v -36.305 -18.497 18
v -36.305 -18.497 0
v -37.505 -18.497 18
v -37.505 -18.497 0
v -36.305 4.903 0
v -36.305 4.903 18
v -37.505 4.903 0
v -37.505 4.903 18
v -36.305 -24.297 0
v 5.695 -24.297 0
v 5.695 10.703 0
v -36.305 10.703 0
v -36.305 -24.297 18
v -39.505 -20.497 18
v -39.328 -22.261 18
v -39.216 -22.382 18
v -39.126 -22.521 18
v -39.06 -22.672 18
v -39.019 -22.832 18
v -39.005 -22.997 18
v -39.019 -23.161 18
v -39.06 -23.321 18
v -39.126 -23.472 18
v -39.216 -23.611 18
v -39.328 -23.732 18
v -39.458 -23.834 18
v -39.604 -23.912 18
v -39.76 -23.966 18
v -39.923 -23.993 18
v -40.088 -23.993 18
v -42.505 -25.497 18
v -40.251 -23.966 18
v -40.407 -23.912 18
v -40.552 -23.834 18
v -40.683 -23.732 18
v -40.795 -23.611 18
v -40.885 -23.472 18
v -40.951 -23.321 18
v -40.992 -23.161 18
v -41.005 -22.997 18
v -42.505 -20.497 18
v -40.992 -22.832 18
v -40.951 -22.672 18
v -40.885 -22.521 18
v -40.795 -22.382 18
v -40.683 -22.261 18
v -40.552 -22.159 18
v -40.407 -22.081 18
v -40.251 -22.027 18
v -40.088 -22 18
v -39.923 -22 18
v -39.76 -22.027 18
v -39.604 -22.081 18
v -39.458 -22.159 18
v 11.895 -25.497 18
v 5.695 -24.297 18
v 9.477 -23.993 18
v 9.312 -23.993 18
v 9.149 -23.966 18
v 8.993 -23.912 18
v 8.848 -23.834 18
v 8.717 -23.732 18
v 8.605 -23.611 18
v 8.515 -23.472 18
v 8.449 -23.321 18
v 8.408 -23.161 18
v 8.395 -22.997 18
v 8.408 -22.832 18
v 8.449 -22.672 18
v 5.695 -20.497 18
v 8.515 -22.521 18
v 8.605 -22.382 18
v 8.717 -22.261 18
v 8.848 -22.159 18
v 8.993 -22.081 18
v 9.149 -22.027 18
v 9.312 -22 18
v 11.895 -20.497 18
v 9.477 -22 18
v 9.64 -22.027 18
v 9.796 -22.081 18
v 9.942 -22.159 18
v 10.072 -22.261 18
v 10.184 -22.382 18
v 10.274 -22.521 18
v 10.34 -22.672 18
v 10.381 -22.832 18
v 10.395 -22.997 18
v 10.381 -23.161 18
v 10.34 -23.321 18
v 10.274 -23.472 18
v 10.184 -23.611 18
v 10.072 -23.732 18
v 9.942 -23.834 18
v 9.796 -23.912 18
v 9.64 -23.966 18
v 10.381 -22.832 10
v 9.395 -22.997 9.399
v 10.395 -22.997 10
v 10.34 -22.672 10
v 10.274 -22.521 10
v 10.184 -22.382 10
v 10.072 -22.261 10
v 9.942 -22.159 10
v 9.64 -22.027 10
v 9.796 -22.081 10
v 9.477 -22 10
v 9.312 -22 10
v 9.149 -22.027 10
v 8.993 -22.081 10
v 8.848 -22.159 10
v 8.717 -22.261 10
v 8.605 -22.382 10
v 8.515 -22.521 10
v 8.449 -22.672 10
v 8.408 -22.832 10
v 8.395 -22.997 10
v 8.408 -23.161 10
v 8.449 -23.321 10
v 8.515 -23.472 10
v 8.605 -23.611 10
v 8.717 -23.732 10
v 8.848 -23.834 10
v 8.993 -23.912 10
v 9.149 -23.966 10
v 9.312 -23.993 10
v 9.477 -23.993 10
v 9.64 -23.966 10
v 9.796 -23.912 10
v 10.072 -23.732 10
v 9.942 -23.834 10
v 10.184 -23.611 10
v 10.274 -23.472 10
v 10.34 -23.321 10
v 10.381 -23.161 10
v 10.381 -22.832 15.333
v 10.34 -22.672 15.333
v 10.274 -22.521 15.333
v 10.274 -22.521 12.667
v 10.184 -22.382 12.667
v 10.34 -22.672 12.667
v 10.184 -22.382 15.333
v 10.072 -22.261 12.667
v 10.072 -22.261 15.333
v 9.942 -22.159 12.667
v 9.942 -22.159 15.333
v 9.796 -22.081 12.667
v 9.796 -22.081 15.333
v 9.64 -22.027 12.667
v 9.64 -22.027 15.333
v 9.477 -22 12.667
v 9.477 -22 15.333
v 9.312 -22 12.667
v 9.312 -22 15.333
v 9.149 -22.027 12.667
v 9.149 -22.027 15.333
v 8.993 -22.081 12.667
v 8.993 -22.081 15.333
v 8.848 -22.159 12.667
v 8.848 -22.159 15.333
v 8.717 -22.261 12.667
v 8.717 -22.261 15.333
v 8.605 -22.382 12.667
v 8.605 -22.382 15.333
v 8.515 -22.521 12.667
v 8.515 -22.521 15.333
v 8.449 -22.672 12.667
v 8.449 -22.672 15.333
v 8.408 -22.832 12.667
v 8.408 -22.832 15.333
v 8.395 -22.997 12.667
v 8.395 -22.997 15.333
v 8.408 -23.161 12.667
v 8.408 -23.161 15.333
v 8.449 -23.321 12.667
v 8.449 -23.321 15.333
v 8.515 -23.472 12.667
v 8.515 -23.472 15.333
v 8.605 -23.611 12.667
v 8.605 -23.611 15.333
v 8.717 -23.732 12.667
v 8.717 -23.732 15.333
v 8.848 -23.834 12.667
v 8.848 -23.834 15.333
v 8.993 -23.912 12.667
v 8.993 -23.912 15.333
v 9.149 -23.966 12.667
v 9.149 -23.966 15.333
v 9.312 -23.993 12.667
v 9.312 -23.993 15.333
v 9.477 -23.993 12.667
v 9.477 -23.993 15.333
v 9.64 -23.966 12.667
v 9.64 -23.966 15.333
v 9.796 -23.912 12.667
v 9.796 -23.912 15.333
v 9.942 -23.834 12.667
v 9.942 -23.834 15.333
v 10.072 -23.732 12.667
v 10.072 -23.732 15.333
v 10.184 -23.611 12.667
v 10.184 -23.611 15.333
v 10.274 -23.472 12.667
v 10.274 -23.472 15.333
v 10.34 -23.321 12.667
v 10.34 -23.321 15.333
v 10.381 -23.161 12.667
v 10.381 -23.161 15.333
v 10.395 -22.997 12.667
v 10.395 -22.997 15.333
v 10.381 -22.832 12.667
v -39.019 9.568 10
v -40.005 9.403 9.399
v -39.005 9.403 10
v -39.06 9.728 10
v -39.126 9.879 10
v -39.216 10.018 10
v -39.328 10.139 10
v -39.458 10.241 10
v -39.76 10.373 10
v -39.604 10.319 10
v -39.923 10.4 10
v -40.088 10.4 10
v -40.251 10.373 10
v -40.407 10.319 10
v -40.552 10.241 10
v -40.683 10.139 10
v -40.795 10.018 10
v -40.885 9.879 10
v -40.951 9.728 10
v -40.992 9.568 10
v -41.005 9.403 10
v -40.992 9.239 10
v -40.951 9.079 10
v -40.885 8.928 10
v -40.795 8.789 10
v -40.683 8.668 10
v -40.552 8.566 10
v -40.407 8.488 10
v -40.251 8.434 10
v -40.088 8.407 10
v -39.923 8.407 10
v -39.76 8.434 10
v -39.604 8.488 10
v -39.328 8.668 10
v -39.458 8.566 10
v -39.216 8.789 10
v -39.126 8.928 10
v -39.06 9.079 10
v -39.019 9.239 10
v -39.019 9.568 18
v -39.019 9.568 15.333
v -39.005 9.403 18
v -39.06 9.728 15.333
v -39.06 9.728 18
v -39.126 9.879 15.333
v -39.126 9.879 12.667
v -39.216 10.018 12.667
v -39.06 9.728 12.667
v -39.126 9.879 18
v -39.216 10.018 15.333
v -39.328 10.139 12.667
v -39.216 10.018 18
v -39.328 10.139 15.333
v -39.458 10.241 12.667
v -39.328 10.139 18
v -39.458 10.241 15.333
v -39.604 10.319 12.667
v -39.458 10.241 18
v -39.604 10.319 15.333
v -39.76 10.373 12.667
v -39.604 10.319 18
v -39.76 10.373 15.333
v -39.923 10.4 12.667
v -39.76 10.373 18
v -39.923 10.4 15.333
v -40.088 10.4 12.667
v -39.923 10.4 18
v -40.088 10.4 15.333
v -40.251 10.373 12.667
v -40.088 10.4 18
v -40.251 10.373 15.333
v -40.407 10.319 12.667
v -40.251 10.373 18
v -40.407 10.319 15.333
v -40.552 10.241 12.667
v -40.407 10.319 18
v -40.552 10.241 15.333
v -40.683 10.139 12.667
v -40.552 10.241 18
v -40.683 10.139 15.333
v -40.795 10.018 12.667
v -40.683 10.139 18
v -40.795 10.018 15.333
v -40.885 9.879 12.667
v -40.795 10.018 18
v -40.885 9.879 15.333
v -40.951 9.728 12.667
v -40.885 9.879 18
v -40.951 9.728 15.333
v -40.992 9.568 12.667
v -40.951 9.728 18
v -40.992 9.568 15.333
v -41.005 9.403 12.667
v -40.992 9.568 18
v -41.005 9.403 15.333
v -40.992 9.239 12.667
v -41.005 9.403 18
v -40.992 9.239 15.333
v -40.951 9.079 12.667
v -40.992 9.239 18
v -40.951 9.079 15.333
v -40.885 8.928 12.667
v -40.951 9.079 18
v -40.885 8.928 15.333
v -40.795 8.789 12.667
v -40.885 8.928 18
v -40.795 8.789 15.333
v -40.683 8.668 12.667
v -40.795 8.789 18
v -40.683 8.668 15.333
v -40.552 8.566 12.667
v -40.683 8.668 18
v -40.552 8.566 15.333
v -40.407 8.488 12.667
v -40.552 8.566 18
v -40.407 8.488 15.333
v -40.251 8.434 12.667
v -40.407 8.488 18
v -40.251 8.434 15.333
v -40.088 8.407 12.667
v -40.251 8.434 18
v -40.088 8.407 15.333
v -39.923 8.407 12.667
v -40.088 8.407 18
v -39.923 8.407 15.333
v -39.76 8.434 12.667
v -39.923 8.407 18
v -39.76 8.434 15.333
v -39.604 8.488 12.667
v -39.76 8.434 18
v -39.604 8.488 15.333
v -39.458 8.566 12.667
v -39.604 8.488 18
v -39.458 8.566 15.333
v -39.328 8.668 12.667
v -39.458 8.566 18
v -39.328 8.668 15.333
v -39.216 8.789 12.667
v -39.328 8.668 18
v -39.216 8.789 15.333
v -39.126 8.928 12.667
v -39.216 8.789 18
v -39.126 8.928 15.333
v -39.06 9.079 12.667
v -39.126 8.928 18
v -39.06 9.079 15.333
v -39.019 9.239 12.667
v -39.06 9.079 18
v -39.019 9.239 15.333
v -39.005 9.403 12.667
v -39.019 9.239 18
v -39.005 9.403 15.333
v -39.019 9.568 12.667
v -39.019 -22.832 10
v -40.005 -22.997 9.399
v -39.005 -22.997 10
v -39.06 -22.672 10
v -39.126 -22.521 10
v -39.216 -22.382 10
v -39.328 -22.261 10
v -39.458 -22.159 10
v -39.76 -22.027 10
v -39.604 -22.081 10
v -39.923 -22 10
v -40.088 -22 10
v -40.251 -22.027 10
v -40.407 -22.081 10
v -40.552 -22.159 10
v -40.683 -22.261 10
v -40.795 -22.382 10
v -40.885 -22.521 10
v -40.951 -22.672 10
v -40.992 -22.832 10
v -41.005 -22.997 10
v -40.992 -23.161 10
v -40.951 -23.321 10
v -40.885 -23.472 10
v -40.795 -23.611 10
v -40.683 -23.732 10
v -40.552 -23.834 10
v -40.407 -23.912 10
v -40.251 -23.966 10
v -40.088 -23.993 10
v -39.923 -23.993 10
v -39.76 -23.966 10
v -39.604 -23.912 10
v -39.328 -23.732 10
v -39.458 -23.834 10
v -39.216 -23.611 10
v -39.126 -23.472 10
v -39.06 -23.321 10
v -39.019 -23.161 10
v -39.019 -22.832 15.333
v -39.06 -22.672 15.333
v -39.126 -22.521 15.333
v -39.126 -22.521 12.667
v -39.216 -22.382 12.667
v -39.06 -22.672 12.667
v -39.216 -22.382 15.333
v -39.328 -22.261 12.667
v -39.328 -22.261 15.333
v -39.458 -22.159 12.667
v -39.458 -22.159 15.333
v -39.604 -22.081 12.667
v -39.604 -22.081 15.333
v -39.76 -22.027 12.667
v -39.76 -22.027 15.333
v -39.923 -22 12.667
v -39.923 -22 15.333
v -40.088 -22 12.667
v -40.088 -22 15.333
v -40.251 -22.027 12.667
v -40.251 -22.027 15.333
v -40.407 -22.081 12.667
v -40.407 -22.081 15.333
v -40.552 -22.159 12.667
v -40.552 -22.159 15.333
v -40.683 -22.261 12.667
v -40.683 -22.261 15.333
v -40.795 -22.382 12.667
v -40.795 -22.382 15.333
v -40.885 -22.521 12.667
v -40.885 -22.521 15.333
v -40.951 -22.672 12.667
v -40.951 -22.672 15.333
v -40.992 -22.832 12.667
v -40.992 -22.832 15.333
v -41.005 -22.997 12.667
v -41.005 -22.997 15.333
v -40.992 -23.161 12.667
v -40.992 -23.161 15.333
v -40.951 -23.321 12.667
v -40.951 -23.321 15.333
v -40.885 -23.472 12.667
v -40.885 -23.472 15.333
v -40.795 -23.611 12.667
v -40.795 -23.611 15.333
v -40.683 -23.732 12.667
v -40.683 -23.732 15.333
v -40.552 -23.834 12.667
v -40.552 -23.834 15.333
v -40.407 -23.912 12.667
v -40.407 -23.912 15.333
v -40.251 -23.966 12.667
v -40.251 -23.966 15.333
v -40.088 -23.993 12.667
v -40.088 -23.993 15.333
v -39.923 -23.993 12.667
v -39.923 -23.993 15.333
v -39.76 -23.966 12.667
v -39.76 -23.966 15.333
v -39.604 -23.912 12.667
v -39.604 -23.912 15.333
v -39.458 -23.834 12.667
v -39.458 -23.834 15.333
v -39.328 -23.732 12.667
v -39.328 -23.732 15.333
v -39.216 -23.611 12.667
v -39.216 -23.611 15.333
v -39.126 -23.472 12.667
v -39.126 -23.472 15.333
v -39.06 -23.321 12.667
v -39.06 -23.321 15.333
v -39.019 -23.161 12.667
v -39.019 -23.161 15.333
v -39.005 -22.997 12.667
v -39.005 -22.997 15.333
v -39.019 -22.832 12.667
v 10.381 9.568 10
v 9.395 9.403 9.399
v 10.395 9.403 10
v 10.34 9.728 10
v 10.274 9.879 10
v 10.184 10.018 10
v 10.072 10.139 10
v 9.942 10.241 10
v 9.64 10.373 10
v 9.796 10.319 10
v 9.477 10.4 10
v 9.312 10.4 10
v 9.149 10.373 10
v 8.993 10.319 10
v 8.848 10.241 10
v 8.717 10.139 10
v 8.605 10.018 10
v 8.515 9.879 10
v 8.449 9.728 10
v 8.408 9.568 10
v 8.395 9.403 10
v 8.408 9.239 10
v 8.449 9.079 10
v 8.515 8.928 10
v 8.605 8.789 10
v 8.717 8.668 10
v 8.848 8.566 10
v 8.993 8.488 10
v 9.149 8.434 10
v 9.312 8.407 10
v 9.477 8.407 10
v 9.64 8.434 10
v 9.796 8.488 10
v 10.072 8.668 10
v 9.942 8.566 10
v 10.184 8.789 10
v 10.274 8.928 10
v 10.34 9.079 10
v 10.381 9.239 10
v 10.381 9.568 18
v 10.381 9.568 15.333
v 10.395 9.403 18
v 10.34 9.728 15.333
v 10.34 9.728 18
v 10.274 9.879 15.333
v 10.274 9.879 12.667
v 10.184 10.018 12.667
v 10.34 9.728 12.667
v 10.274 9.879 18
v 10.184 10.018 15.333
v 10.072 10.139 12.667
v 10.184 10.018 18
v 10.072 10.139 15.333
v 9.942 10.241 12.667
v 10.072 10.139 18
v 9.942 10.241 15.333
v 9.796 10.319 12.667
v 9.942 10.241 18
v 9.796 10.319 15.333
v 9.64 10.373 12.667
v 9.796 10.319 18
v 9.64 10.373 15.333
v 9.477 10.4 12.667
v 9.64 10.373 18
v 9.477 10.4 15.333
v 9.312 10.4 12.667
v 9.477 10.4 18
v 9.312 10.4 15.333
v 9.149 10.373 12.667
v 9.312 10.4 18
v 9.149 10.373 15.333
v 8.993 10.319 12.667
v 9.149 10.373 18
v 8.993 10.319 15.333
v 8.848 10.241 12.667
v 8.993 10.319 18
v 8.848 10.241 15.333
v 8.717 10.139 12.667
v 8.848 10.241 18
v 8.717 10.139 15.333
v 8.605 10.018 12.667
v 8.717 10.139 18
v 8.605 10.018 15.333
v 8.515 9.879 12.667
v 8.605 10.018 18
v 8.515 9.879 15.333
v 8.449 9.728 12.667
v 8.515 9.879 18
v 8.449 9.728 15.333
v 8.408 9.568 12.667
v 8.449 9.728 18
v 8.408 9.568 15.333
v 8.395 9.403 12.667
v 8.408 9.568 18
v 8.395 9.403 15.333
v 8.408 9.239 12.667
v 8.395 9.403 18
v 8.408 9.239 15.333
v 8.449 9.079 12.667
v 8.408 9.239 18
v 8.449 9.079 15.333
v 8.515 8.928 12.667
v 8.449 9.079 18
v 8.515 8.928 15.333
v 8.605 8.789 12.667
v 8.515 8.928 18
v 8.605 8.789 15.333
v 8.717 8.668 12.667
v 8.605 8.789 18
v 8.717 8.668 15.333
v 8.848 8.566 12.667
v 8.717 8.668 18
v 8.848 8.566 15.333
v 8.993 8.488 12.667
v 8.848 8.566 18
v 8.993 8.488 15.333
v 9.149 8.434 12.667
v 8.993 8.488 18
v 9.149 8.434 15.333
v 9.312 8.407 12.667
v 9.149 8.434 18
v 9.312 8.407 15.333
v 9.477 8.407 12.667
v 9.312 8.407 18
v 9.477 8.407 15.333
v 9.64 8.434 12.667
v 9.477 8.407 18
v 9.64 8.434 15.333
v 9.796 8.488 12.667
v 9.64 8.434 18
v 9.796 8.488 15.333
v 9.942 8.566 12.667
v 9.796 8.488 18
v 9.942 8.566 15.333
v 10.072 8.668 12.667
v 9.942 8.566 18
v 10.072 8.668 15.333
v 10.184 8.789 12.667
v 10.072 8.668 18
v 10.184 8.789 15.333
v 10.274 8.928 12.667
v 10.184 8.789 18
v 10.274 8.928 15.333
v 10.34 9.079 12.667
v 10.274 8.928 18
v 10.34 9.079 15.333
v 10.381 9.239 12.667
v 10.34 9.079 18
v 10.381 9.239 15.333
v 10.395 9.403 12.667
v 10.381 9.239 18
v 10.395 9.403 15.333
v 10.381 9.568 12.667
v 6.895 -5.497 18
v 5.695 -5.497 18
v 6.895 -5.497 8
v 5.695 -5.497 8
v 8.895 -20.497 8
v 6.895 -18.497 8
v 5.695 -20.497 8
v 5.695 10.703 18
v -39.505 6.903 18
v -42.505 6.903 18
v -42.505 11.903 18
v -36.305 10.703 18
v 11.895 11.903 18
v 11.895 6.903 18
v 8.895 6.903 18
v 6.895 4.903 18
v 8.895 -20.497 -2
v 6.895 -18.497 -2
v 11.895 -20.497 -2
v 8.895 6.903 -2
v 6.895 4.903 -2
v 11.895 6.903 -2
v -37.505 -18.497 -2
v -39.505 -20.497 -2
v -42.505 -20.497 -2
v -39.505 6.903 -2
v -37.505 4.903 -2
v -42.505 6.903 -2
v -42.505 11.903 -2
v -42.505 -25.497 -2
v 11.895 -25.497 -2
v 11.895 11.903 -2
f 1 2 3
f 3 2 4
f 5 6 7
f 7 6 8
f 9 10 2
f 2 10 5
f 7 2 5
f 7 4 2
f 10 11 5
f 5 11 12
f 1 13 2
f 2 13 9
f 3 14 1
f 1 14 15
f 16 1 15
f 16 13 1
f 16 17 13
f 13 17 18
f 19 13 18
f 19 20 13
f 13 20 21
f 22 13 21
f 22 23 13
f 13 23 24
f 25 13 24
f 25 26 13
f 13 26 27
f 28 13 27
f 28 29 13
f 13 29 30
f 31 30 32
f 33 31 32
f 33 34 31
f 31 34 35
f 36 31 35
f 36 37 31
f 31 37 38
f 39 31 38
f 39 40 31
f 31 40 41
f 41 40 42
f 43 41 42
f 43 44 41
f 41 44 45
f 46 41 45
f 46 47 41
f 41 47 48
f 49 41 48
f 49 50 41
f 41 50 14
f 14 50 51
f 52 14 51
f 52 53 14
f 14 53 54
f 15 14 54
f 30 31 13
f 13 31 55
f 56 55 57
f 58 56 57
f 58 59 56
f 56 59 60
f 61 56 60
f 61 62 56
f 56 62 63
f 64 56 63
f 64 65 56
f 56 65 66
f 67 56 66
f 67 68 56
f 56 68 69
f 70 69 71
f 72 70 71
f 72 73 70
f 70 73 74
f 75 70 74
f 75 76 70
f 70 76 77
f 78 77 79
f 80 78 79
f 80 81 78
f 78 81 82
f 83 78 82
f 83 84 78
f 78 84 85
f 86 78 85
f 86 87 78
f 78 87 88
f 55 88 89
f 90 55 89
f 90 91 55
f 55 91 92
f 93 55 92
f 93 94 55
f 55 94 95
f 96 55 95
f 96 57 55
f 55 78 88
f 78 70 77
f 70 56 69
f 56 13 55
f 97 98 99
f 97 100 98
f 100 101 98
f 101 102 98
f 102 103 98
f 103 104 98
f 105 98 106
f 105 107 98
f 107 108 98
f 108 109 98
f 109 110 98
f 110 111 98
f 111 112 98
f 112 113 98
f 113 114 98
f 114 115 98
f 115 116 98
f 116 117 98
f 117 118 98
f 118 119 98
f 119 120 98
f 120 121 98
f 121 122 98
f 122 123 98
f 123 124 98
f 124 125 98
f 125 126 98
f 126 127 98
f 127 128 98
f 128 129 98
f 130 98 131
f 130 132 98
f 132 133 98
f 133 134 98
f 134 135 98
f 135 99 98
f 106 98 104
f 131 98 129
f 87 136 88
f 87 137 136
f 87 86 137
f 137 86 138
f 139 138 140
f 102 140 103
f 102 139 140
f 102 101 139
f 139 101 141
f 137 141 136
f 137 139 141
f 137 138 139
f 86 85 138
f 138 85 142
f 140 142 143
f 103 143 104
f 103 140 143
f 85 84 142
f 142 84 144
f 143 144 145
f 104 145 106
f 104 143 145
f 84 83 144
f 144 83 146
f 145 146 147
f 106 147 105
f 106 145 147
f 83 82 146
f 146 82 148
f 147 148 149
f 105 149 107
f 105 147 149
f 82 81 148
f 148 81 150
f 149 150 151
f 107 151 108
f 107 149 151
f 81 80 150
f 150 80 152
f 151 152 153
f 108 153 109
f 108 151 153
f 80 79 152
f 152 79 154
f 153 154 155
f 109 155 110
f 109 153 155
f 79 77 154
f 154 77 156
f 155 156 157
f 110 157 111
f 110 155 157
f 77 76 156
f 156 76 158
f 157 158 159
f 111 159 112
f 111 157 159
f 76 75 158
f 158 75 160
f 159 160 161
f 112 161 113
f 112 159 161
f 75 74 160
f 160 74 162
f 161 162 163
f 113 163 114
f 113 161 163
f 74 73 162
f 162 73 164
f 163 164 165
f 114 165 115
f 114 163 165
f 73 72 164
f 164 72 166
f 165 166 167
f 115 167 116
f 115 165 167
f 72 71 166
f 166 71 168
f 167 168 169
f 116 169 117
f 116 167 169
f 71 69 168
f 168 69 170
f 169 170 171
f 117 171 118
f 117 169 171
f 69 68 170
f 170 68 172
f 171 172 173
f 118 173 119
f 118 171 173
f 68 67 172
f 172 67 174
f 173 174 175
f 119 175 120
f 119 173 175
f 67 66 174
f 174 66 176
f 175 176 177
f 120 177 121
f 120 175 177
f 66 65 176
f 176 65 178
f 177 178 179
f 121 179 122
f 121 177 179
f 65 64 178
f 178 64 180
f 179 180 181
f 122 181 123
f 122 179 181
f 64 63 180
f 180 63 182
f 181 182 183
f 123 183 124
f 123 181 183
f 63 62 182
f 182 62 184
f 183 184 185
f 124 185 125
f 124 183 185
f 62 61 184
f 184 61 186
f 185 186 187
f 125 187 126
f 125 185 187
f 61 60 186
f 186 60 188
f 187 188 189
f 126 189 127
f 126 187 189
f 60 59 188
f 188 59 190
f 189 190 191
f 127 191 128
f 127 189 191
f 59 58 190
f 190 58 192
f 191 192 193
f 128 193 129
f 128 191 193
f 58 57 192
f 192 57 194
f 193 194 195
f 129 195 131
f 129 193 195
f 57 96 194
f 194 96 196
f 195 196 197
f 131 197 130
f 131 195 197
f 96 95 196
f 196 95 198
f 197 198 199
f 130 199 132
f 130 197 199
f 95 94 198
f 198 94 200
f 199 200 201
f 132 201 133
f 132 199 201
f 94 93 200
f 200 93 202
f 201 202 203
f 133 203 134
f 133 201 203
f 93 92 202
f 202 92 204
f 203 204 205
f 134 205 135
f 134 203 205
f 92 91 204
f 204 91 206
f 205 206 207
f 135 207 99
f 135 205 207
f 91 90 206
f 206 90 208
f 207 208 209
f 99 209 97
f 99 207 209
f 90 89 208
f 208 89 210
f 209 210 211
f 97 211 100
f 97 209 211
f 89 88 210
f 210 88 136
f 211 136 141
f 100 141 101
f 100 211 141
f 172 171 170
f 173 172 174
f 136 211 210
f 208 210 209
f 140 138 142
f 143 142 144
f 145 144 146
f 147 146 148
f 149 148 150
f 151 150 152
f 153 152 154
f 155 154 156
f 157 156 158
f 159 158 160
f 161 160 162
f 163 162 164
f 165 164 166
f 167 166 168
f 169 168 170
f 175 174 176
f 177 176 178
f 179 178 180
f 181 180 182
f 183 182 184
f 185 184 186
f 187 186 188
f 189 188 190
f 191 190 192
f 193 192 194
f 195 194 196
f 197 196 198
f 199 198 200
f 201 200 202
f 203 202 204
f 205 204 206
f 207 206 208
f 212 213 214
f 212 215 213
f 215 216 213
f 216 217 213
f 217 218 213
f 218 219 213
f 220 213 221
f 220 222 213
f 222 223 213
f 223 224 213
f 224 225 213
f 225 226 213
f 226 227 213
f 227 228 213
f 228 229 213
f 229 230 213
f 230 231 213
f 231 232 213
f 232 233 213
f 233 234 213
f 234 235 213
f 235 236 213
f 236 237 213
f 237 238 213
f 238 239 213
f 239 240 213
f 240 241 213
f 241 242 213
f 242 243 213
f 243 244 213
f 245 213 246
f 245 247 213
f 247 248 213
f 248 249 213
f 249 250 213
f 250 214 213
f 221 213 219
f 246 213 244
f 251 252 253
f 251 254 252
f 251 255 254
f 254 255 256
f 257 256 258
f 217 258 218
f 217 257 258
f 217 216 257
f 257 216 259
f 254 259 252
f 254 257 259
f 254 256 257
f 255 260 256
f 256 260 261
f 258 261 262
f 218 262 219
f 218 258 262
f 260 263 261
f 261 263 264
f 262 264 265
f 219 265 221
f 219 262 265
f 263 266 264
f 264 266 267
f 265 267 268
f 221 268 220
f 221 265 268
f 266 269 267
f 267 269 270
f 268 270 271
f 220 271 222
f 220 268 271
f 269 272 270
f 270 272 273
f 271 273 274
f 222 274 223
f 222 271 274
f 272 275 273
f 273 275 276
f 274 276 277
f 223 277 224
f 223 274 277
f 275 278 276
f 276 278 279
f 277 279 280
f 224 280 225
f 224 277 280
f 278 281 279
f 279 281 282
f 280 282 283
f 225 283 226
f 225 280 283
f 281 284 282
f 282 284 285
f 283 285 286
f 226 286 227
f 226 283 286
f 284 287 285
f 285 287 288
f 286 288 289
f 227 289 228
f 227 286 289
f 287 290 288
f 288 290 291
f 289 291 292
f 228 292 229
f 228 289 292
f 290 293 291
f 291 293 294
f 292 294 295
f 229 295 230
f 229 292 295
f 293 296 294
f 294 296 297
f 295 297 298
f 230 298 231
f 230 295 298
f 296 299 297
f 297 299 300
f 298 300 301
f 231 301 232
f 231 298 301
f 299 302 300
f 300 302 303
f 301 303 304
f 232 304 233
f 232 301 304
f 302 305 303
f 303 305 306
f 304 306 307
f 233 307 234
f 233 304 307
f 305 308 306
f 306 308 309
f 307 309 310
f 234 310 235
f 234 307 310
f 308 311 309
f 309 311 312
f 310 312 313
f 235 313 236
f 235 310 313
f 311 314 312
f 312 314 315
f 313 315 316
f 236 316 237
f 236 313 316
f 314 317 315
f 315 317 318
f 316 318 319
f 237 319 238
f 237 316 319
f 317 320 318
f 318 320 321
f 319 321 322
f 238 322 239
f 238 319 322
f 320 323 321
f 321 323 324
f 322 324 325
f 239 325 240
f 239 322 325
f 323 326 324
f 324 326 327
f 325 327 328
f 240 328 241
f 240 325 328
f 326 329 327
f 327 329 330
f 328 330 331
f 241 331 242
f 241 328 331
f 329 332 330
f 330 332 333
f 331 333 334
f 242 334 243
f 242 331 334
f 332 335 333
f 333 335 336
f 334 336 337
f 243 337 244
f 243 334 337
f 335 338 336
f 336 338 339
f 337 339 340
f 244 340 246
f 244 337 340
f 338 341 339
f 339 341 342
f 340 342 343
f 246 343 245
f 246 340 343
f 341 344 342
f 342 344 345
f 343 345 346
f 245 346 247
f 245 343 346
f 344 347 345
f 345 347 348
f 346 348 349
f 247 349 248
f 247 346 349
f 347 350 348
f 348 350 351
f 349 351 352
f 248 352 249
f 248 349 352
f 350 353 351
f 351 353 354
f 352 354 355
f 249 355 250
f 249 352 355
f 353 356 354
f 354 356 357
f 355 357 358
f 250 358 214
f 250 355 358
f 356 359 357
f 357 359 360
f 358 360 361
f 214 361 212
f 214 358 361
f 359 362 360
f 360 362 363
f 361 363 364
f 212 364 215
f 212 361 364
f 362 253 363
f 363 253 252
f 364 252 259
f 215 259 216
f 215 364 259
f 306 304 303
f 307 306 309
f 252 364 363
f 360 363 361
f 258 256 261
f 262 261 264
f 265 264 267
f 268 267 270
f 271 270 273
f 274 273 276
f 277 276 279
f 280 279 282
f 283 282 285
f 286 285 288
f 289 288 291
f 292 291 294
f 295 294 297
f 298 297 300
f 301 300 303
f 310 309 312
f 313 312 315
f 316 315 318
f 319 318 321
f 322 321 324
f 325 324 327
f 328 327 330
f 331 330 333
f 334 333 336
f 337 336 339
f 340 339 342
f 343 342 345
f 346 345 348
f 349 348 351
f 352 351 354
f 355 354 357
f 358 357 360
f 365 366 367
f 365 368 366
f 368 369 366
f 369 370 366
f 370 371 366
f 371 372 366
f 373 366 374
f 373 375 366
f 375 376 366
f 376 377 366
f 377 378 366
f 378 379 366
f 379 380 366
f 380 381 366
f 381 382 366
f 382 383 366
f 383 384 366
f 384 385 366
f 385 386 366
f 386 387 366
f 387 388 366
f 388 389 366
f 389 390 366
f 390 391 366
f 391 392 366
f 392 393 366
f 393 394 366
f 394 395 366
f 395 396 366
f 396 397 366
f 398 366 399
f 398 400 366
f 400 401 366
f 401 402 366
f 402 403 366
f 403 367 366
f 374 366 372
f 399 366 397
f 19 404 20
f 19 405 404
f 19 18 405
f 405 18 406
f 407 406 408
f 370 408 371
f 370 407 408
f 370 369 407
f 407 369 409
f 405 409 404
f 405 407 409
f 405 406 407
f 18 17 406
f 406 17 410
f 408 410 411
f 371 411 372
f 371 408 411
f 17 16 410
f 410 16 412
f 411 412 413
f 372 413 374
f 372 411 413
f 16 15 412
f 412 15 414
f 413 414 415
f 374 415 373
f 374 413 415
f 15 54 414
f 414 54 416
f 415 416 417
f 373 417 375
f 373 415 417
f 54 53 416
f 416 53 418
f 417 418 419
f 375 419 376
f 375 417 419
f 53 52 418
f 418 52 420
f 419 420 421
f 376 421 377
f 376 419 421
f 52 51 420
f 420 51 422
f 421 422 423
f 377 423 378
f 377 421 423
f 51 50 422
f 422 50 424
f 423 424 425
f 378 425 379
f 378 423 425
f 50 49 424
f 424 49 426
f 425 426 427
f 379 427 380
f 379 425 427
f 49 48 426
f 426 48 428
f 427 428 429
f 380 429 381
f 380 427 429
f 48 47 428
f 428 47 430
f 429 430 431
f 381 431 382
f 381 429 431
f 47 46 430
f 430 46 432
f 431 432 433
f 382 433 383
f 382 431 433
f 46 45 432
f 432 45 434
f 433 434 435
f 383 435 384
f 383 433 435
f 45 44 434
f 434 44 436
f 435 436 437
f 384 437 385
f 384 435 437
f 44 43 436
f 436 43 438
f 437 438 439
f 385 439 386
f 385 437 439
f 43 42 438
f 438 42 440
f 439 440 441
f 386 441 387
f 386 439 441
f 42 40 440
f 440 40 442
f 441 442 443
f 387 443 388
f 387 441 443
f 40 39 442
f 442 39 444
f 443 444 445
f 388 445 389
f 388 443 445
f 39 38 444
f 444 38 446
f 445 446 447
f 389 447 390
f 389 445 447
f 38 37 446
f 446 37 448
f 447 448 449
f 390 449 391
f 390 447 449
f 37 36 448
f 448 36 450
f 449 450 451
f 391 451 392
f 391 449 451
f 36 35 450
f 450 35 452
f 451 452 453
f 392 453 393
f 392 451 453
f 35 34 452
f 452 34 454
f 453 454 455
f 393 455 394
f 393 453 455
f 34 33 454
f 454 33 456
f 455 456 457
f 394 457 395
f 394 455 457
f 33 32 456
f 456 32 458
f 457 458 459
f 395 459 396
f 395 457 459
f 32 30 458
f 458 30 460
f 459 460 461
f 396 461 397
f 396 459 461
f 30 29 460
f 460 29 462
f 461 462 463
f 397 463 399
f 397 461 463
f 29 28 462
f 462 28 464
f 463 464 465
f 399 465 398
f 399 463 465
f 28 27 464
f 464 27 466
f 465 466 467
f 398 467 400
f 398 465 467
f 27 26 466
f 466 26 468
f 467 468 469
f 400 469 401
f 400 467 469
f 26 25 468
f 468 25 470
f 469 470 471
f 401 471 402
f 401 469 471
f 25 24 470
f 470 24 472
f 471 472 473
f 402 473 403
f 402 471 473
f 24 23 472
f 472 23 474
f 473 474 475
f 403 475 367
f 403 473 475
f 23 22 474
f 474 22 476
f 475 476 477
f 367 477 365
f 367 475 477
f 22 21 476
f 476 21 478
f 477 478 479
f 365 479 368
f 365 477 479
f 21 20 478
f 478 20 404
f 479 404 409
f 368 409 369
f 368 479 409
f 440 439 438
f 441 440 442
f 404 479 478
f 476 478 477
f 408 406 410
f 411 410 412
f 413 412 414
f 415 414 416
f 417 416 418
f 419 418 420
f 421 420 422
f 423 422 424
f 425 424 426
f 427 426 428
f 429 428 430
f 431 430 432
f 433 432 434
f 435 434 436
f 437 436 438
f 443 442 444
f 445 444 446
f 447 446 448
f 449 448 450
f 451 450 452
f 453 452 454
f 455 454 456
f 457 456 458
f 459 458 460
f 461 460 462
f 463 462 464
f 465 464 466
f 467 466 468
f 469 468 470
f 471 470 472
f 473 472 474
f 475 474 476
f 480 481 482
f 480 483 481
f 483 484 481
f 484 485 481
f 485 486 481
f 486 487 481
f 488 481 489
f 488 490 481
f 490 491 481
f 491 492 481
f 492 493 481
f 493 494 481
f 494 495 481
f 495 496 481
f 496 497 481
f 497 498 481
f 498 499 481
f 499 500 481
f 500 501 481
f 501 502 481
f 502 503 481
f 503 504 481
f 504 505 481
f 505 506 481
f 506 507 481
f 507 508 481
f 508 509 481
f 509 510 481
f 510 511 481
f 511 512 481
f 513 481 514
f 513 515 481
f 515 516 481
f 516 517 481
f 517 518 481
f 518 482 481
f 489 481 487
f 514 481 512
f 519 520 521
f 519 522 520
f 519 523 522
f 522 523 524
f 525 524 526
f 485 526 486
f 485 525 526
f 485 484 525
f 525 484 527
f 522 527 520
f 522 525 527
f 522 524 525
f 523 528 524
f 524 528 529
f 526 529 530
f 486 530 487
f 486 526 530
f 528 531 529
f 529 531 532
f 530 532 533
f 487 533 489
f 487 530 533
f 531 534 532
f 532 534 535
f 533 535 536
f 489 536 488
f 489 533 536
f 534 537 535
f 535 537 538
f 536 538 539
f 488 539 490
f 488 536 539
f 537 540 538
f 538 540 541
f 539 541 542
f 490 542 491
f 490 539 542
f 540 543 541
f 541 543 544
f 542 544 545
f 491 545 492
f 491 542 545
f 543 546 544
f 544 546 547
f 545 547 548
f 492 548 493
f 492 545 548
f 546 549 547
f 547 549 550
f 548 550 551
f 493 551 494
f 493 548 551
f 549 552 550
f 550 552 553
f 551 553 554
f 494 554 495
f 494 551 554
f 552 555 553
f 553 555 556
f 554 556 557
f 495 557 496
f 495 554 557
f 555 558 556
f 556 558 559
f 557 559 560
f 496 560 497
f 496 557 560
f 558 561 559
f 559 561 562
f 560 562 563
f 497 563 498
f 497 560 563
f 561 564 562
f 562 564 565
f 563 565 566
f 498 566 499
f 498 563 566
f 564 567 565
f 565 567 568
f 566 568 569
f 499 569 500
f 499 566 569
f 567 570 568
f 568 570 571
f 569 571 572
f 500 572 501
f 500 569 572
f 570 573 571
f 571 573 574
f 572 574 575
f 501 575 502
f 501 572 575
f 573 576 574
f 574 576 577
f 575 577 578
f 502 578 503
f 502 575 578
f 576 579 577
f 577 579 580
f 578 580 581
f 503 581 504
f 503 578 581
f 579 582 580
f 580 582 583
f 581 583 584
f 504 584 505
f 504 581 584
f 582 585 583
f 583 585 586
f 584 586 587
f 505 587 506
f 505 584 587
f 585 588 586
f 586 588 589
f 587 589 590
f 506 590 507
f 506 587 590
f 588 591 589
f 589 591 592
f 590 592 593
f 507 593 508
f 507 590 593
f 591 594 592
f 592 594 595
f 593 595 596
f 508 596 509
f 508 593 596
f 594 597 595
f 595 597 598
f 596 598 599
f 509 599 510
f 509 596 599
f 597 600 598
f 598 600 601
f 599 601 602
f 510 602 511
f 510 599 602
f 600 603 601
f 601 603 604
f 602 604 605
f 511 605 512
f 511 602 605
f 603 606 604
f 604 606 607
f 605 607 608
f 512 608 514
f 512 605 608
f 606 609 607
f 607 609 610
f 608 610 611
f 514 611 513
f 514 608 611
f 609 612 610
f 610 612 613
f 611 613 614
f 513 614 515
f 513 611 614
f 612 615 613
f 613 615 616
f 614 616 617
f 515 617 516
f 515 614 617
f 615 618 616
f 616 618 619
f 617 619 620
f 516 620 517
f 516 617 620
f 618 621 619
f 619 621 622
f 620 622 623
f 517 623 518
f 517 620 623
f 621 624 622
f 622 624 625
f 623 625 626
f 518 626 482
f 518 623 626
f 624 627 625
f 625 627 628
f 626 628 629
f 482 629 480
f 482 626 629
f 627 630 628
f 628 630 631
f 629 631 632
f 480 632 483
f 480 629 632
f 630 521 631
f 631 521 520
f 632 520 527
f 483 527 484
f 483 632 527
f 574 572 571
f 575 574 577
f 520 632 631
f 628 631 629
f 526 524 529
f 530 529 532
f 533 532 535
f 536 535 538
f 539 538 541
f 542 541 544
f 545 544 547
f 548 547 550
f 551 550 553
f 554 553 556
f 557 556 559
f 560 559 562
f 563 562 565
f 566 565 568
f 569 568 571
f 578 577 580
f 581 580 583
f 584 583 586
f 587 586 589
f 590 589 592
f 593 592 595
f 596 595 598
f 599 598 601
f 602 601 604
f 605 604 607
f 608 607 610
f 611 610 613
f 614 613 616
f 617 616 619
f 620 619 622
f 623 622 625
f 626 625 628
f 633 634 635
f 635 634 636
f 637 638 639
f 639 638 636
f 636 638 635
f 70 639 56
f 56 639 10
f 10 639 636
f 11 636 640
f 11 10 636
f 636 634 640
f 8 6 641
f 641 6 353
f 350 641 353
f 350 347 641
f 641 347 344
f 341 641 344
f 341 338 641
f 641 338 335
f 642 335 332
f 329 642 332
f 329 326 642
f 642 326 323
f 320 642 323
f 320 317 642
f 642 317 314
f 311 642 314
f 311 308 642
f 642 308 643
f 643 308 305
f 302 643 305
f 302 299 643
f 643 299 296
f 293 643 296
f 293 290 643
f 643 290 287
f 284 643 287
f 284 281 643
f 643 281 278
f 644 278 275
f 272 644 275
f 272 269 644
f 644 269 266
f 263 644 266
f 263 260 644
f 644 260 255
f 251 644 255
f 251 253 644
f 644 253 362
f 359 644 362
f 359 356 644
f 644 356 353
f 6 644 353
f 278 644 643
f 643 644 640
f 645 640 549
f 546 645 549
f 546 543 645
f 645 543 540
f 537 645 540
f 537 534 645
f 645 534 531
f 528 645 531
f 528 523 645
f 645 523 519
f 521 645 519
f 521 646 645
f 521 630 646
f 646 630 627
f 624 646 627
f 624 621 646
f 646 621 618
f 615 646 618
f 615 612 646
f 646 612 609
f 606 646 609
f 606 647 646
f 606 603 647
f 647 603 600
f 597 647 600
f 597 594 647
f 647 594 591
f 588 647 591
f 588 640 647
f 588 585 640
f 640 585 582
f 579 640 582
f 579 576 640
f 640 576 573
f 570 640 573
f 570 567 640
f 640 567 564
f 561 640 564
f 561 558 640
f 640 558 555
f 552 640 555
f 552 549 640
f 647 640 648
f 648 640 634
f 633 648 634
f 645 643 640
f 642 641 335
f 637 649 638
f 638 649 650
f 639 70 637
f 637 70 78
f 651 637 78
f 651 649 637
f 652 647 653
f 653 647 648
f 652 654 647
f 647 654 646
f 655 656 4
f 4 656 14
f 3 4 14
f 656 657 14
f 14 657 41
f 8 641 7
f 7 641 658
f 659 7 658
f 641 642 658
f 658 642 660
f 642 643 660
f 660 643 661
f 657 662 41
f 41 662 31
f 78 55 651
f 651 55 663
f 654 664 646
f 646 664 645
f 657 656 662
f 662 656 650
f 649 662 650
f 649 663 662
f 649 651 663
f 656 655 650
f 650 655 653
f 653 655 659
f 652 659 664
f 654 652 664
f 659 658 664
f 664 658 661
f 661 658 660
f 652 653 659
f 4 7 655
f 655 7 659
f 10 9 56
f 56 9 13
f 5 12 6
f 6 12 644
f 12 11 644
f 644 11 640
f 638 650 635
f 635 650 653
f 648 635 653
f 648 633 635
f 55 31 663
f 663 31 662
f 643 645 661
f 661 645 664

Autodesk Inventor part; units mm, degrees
ref_plane "YZ Plane" through (0, 0, 0) normal (1, 0, 0) x (0, 1, 0)
ref_plane "XZ Plane" through (0, 0, 0) normal (0, 1, 0) x (-1, 0, 0)
ref_plane "XY Plane" through (0, 0, 0) normal (0, 0, 1) x (1, 0, 0)
sketch "Sketch1" plane through (0, 0, 0) normal (0, 0, 1) x (1, 0, 0)
  line L0 (-36.3054, 10.7035) -> (5.6946, 10.7035)
  line L1 (5.6946, 10.7035) -> (5.6946, -24.2965)
  line L2 (5.6946, -24.2965) -> (-36.3054, -24.2965)
  line L3 (-36.3054, -24.2965) -> (-36.3054, 10.7035)
  line L4 (-37.5054, 11.9035) -> (6.8946, 11.9035)
  line L5 (6.8946, 11.9035) -> (6.8946, -25.4965)
  line L6 (6.8946, -25.4965) -> (-37.5054, -25.4965)
  line L7 (-37.5054, -25.4965) -> (-37.5054, 11.9035)
  point P0 (0, 0)
  dimension "d0" = 42
  dimension "d1" = 35
  dimension "d2" = 1.2
  dimension "d3" = 1.2
  dimension "d4" = 1.2
  dimension "d5" = 1.2
extrude "Extrusion1" add sketch "Sketch1" along normal blind 18
sketch "Sketch2" plane through (0, 0, 0) normal (0, 0, -1) x (-1, 0, 0)
  line L0 (-11.8946, 11.9035) -> (42.5054, 11.9035)
  line L1 (42.5054, 11.9035) -> (42.5054, -25.4965)
  line L2 (42.5054, -25.4965) -> (-11.8946, -25.4965)
  line L3 (-11.8946, -25.4965) -> (-11.8946, 11.9035)
  line L4 (-6.8946, -25.4965) -> (-6.8946, 11.9035) projected
  line L5 (37.5054, -25.4965) -> (37.5054, 11.9035) projected
  line L6 (37.5054, 11.9035) -> (-6.8946, 11.9035) projected
  line L7 (-6.8946, -25.4965) -> (37.5054, -25.4965) projected
  point P0 (0, 0)
  dimension "d8" = 5
  dimension "d9" = 5
extrude "Extrusion2" add sketch "Sketch2" along normal blind 2
sketch "Sketch3" plane through (0, 0, 0) normal (0, 0, 1) x (1, 0, 0)
  line L0 (-42.5054, 11.9035) -> (11.8946, 11.9035) projected
  line L1 (-42.5054, -25.4965) -> (-42.5054, 11.9035) projected
  line L2 (-37.5054, 11.9035) -> (-42.5054, 11.9035)
  line L3 (-42.5054, 11.9035) -> (-42.5054, 6.9035)
  line L4 (-42.5054, 6.9035) -> (-37.5054, 6.9035)
  line L5 (-37.5054, 6.9035) -> (-37.5054, 11.9035)
  line L6 (-37.5054, 11.9035) -> (-37.5054, -25.4965) projected
  line L7 (-42.5054, -25.4965) -> (-37.5054, -25.4965)
  line L8 (-37.5054, -25.4965) -> (-37.5054, -20.4965)
  line L9 (-37.5054, -20.4965) -> (-42.5054, -20.4965)
  line L10 (-42.5054, -20.4965) -> (-42.5054, -25.4965)
  line L11 (6.8946, 11.9035) -> (6.8946, -25.4965) projected
  line L12 (11.8946, 11.9035) -> (6.8946, 11.9035)
  line L13 (6.8946, 11.9035) -> (6.8946, 6.9035)
  line L14 (6.8946, 6.9035) -> (11.8946, 6.9035)
  line L15 (11.8946, 6.9035) -> (11.8946, 11.9035)
  line L16 (11.8946, -25.4965) -> (6.8946, -25.4965)
  line L17 (6.8946, -25.4965) -> (6.8946, -20.4965)
  line L18 (6.8946, -20.4965) -> (11.8946, -20.4965)
  line L19 (11.8946, -20.4965) -> (11.8946, -25.4965)
  point P0 (0, 0)
  dimension "d12" = 5
  dimension "d13" = 5
  dimension "d14" = 5
  dimension "d15" = 5
extrude "Extrusion3" add sketch "Sketch3" along normal blind 18 contours L18 L19 L16 L11 | L0 L15 L14 L11 | L0 L5 L4 L1 | L9 L6 L7 L1
sketch "Sketch4" plane through (0, 0, 0) normal (0, 0, 1) x (1, 0, 0)
  line L0 (-37.5054, 6.9035) -> (-42.5054, 6.9035)
  line L1 (-42.5054, 6.9035) -> (-42.5054, -20.4965)
  line L2 (-42.5054, -20.4965) -> (-37.5054, -20.4965)
  line L3 (-37.5054, -20.4965) -> (-37.5054, 6.9035)
  line L4 (6.8946, -20.4965) -> (11.8946, -20.4965)
  line L5 (11.8946, -20.4965) -> (11.8946, 6.9035)
  line L6 (11.8946, 6.9035) -> (6.8946, 6.9035)
  line L7 (6.8946, 6.9035) -> (6.8946, -20.4965)
  point P0 (0, 0)
extrude "Extrusion4" cut sketch "Sketch4" against normal blind 18
chamfer "Chamfer1" distance 2 angle 45 4 edges at (-37.5054, 6.9035, 8) (-37.5054, -20.4965, 8) (6.8946, 6.9035, 8) (6.8946, -20.4965, 8)
sketch "Sketch5" plane through (0, 0, 18) normal (0, 0, 1) x (1, 0, 0)
  line L0 (5.6946, 10.7035) -> (5.6946, -24.2965) projected
  line L1 (8.8946, -20.4965) -> (5.6946, -20.4965)
  line L2 (5.6946, -20.4965) -> (5.6946, -5.4965)
  line L3 (5.6946, -5.4965) -> (8.8946, -5.4965)
  line L4 (8.8946, -5.4965) -> (8.8946, -20.4965)
  point P0 (0, 0)
  dimension "d23" = 15
extrude "Extrusion5" cut sketch "Sketch5" against normal blind 10
sketch "Sketch6" plane through (0, 0, 18) normal (0, 0, 1) x (1, 0, 0)
  line L0 (11.8946, 11.9035) -> (-42.5054, 11.9035) projected
  line L1 (-42.5054, 11.9035) -> (-42.5054, 6.9035) projected
  line L2 (-39.5054, -20.4965) -> (-42.5054, -20.4965) projected
  line L3 (-42.5054, -20.4965) -> (-42.5054, -25.4965) projected
  line L4 (-42.5054, -25.4965) -> (11.8946, -25.4965) projected
  line L5 (11.8946, -25.4965) -> (11.8946, -20.4965) projected
  line L6 (8.8946, 6.9035) -> (11.8946, 6.9035) projected
  line L7 (11.8946, 6.9035) -> (11.8946, 11.9035) projected
  point P0 (0, 0)
  point P1 (-40.0054, 9.4035)
  point P2 (-40.0054, -22.9965)
  point P3 (9.3946, -22.9965)
  point P4 (9.3946, 9.4035)
  dimension "d26" = 2.5
  dimension "d27" = 2.5
  dimension "d28" = 2.5
  dimension "d29" = 2.5
  dimension "d30" = 2.5
  dimension "d31" = 2.5
  dimension "d32" = 2.5
  dimension "d33" = 2.5
  dimension "d34" = 49.4
  dimension "d35" = 32.4
hole "Hole1" at (-40.0054, 9.4035, 18) at (-40.0054, -22.9965, 18) at (9.3946, -22.9965, 18) at (9.3946, 9.4035, 18) direction (0, 0, -1) diameter 2 depth 8 tip angle 118
sketch "Sketch7" plane through (-37.5054, -18.4965, 18) normal (-1, 0, 0) x (0, 0, 1)
  line L0 (-20, 0) -> (-10, 0) projected
  line L1 (0, 23.4) -> (-18, 23.4)
  line L2 (-18, 23.4) -> (-18, 0)
  line L3 (-18, 0) -> (0, 0)
  line L4 (0, 0) -> (0, 23.4)
  line L5 (-18, 29.2) -> (-18, -5.8) projected
  point P0 (-18, 18.4965)
extrude "Extrusion6" cut sketch "Sketch7" against normal blind 2
properties part number "main body"
